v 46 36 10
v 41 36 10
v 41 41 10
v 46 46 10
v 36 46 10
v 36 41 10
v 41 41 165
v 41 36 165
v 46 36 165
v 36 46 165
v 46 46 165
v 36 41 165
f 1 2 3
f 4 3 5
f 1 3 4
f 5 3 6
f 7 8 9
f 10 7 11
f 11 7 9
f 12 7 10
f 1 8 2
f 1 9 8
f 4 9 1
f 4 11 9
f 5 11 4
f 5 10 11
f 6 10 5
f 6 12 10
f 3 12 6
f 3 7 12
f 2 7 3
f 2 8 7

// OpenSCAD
// file: local_modules/lcd.scad
LCD_X=76;
LCD_Y=1.5;
LCD_Z=138;
LCD_DISP_X=LCD_X - 1.5 * 2;
LCD_DISP_Z_OFFSET_FROM_BOTTOM=6;
LCD_DISP_Z=LCD_Z-LCD_DISP_Z_OFFSET_FROM_BOTTOM - 1.5;

module lcd(margin=0, draw_display_region=false) {
  translate([0, 0, LCD_Z/2]){
    cube(size=[LCD_X+margin, LCD_Y+margin, LCD_Z+margin], center=true);

    if(draw_display_region){
      translate([0, 0, -(LCD_Z - LCD_DISP_Z)/2 + LCD_DISP_Z_OFFSET_FROM_BOTTOM]) 
      color("green", 0.5)
      cube(size=[LCD_DISP_X, LCD_Y, LCD_DISP_Z], center=true);
    }
  }
}
// file: scad-utils/morphology.scad
// Copyright (c) 2013 Oskar Linde. All rights reserved.
// License: BSD
//
// This library contains basic 2D morphology operations
//
// outset(d=1)            - creates a polygon at an offset d outside a 2D shape
// inset(d=1)             - creates a polygon at an offset d inside a 2D shape
// fillet(r=1)            - adds fillets of radius r to all concave corners of a 2D shape
// rounding(r=1)          - adds rounding to all convex corners of a 2D shape
// shell(d,center=false)  - makes a shell of width d along the edge of a 2D shape
//                        - positive values of d places the shell on the outside
//                        - negative values of d places the shell on the inside
//                        - center=true and positive d places the shell centered on the edge

module outset(d=1) {
	// Bug workaround for older OpenSCAD versions
	if (version_num() < 20130424) render() outset_extruded(d) children();
	else minkowski() {
		circle(r=d);
		children();
	}
}

module outset_extruded(d=1) {
   projection(cut=true) minkowski() {
        cylinder(r=d);
        linear_extrude(center=true) children();
   }
}

module inset(d=1) {
	 render() inverse() outset(d=d) inverse() children();
}

module fillet(r=1) {
	inset(d=r) render() outset(d=r) children();
}

module rounding(r=1) {
	outset(d=r) inset(d=r) children();
}

module shell(d,center=false) {
	if (center && d > 0) {
		difference() {
			outset(d=d/2) children();
			inset(d=d/2) children();
		}
	}
	if (!center && d > 0) {
		difference() {
			outset(d=d) children();
			children();
		}
	}
	if (!center && d < 0) {
		difference() {
			children();
			inset(d=-d) children();
		}
	}
	if (d == 0) children();
}


// Below are for internal use only

module inverse() {
	difference() {
		square(1e5,center=true);
		children();
	}
}


// TEST CODE

use <mirror.scad>

module arrow(l=1,w=.6,t=0.15) {
	mirror_y() polygon([[0,0],[l,0],[l-w/2,w/2],[l-w/2-sqrt(2)*t,w/2],[l-t/2-sqrt(2)*t,t/2],[0,t/2]]);
}

module shape() {
	polygon([[0,0],[1,0],[1.5,1],[2.5,1],[2,-1],[0,-1]]);
}

if(0) assign($fn=32) {

	for (p = [0:10*3-1]) assign(o=floor(p/3)) {
		translate([(p%3)*2.5,-o*3]) {
			//%if (p % 3 == 1) translate([0,0,1]) shape();
			if (p % 3 == 0) shape();
			if (p % 3 == 1) translate([0.6,0]) arrow();
			if (p % 3 == 2) {
				if (o == 0) inset(d=0.3) shape();
				if (o == 1) outset(d=0.3) shape();
				if (o == 2) rounding(r=0.3) shape();
				if (o == 3) fillet(r=0.3) shape();
				if (o == 4) shell(d=0.3) shape();
				if (o == 5) shell(d=-0.3) shape();
				if (o == 6) shell(d=0.3,center=true) shape();
				if (o == 7) rounding(r=0.3) fillet(r=0.3) shape();
				if (o == 8) shell(d=0.3,center=true) fillet(r=0.3) rounding(r=0.3) shape();
				if (o == 9) shell(d=-0.3) fillet(r=0.3) rounding(r=0.3) shape();
			}
		}
	}
}
// file: scad-utils/mirror.scad
// Copyright (c) 2013 Oskar Linde. All rights reserved.
// License: BSD
//
// This library contains simple mirroring functions
//
// mirror_x()
// mirror_y()
// mirror_z()


module mirror_x() {
  union() {
    child();
    scale([-1,1,1]) child();
  }
}

module mirror_y() {
  union() {
    child();
    scale([1,-1,1]) child();
  }
}

module mirror_z() {
  union() {
    child();
    scale([1,1,-1]) child();
  }
}
// file: _kagedourou_side_frame.scad
include <./_kagedourou_top.scad>

KD_SIDE_FRAME_Z=155;

module kagedourou_side_frame() {
  translate([KD_TOP_X/2 - KD_FRAME_T/2, KD_TOP_Y/2 - KD_FRAME_T/2, KD_FRAME_T]) 
  linear_extrude(height=KD_SIDE_FRAME_Z, center=!true, convexity=10, twist=0)
  difference(){
    square(size=[KD_FRAME_T, KD_FRAME_T], center=true);

    // inner space
    rotate([0, 0, 180])
    square(size=[KD_FRAME_INNER_T, KD_FRAME_INNER_T], center=!true);
  }
}
// file: _kagedourou_top.scad
include <scad-utils/mirror.scad>
include <scad-utils/morphology.scad>

include <./local_modules/lcd.scad>


module lcd_for_top(){
  translate([0, KD_TOP_Y/2 - LCD_Y/2 - (KD_FRAME_INNER_T + 0.5), LCD_Z + KD_FRAME_T - 2]) 
  rotate([180, 0, 0]) 
  lcd(draw_display_region=true);
}

KD_FRAME_T=10;
KD_FRAME_INNER_T=5;

KD_TOP_X=LCD_X-2*2+KD_FRAME_T*2;
KD_TOP_Y=KD_TOP_X;
echo(str("KD_TOP_X=", KD_TOP_X));
echo(str("KD_TOP_Y=", KD_TOP_Y));

KD_TOP_DISP_HOLDER_X=10;
KD_TOP_DISP_HOLDER_Y=4*2;

module kagedourou_top_display_holder(args) {
  translate([0, KD_TOP_Y/2 - KD_FRAME_INNER_T, 0]){
    difference() {

      linear_extrude(height=KD_FRAME_T, center=!true, convexity=10, twist=0)
      square(size=[KD_TOP_DISP_HOLDER_X, KD_TOP_DISP_HOLDER_Y], center=true);

      translate([0, 0, KD_FRAME_T - 2]) 
      linear_extrude(height=KD_FRAME_T, center=!true, convexity=10, twist=0)
      square(size=[KD_TOP_DISP_HOLDER_X, (LCD_Y + 1) * 2], center=true);
    }

  }
}

module kagedourou_top() {
  difference() {
    linear_extrude(height=KD_FRAME_T, center=!true, convexity=10, twist=0)
    difference(){
      square(size=[KD_TOP_X, KD_TOP_Y], center=true);

      // top window
      offset(delta=-KD_FRAME_T)
      square(size=[KD_TOP_X, KD_TOP_Y], center=true);
    }

    translate([0, 0, 5]) 
    linear_extrude(height=KD_FRAME_T, center=!true, convexity=10, twist=0)
    offset(delta=(KD_FRAME_T - KD_FRAME_INNER_T))
    offset(delta=-KD_FRAME_T)
    square(size=[KD_TOP_X, KD_TOP_Y], center=true);
  }

  kagedourou_top_display_holder();
}

// kagedourou_top();
// main file
include <./_kagedourou_top.scad>
include <./_kagedourou_side_frame.scad>

$fn=50;

%
lcd_for_top();
%
kagedourou_top();

kagedourou_side_frame();
